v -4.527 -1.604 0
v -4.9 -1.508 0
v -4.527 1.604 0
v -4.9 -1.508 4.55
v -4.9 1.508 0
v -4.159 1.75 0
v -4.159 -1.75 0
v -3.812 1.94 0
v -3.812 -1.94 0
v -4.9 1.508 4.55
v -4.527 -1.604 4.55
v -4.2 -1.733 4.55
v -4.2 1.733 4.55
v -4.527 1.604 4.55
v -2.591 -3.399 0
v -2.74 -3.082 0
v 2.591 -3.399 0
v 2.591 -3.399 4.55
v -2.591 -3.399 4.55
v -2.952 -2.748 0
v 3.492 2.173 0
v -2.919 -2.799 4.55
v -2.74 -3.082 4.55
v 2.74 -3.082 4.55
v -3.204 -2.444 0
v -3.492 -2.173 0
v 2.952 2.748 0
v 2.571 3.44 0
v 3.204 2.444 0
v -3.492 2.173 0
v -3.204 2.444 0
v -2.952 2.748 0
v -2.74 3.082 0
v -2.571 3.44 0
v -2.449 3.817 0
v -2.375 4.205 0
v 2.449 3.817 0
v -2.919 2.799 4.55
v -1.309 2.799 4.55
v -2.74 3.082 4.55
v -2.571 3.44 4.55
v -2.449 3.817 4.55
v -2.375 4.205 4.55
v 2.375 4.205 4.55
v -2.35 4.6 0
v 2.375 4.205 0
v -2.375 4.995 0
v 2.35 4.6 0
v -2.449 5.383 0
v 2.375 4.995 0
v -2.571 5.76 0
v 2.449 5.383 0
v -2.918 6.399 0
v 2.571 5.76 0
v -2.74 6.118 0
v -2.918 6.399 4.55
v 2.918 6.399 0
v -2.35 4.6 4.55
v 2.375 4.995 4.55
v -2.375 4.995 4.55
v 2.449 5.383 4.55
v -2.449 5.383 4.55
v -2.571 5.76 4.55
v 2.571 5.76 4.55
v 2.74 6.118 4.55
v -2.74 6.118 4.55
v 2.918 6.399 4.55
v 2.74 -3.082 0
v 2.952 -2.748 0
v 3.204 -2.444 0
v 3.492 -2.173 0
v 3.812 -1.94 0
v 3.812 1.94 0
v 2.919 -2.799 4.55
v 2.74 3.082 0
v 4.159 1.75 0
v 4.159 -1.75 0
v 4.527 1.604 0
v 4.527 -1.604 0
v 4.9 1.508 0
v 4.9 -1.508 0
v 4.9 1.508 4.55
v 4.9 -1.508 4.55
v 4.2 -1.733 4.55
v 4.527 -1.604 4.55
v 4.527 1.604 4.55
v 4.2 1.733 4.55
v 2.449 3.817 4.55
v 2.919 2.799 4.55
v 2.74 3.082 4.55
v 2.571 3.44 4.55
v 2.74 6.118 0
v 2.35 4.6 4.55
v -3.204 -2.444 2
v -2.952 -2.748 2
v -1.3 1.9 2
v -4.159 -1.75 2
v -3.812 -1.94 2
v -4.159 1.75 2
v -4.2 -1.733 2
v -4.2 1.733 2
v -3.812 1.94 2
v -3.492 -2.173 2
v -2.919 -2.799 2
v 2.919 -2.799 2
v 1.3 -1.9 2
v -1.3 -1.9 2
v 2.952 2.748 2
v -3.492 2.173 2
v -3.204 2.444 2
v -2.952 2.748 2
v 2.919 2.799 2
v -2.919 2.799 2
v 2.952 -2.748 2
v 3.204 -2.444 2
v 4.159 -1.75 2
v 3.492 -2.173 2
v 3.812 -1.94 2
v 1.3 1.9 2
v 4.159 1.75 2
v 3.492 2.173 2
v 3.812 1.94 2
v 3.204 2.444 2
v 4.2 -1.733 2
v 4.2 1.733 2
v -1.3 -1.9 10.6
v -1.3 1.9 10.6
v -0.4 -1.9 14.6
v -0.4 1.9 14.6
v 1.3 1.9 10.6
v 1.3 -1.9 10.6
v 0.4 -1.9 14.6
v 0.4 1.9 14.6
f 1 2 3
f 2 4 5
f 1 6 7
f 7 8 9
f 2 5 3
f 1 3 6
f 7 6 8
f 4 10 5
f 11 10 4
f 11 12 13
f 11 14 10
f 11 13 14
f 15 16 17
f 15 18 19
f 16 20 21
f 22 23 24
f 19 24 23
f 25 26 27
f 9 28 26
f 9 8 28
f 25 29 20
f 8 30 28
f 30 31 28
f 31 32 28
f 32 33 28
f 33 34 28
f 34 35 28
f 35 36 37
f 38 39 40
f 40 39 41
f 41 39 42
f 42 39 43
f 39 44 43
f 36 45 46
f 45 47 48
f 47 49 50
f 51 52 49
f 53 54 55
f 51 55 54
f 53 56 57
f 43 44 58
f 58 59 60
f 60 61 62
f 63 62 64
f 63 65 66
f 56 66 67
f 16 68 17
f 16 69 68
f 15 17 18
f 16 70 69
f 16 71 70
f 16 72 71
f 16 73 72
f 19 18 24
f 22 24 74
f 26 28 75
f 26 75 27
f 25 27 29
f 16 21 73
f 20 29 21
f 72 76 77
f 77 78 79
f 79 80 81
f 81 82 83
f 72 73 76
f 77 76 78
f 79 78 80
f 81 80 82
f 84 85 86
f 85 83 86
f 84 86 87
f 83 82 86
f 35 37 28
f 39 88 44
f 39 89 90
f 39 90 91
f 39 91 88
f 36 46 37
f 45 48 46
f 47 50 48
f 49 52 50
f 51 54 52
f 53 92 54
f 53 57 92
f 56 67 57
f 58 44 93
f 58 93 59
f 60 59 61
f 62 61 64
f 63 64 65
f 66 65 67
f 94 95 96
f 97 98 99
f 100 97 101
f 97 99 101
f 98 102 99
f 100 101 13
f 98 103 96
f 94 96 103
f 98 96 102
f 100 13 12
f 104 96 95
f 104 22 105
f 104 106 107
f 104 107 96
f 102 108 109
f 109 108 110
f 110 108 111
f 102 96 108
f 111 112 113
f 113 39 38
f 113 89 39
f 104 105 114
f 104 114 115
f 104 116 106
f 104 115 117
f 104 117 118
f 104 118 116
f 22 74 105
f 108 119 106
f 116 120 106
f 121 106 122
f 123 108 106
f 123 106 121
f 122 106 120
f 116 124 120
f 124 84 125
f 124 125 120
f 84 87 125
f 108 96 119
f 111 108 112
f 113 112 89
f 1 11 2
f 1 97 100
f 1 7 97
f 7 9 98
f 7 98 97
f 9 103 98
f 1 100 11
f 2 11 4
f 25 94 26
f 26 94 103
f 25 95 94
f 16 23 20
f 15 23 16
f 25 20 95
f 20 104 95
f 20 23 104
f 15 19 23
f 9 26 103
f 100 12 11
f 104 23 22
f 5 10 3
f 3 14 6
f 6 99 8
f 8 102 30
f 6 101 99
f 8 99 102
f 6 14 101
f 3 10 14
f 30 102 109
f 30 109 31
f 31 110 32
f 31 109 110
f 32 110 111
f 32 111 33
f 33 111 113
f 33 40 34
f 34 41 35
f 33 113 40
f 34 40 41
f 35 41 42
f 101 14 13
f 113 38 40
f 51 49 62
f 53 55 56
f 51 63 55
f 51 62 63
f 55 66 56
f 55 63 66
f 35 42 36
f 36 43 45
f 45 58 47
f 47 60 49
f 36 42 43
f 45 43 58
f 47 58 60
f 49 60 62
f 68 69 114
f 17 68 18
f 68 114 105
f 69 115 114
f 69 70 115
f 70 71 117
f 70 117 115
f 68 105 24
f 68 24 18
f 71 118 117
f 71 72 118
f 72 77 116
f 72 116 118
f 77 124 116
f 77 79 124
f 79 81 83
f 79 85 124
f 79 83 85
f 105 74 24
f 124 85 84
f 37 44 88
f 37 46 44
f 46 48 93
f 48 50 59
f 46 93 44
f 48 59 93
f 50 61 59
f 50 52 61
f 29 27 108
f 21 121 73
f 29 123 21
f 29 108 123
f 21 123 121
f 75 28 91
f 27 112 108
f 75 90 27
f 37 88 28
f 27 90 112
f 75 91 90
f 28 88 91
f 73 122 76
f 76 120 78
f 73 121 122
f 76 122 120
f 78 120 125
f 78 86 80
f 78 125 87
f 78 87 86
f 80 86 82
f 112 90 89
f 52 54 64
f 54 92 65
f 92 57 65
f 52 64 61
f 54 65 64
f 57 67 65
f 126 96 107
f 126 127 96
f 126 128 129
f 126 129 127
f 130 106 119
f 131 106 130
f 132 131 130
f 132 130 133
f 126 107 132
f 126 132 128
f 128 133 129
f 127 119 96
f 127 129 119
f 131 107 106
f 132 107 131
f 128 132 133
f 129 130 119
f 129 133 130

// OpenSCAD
$fn = 50;

difference() {
	union() {
		translate(v = [0, 0, 0]) {
			rotate(a = [0, 0, 0]) {
				difference() {
					union() {
						translate(v = [0, 0, 0]) {
							rotate(a = [0, 0, 0]) {
								difference() {
									union() {
										translate(v = [0, 0, 0]) {
											rotate(a = [0, 0, 0]) {
												difference() {
													union() {
														translate(v = [0, 1.5, 0]) {
															hull() {
																translate(v = [-4.15, 4.15, 0]) {
																	cylinder(h = 4.55, r = 0.75);
																}
																translate(v = [4.15, 4.15, 0]) {
																	cylinder(h = 4.55, r = 0.75);
																}
																translate(v = [-4.15, -4.15, 0]) {
																	cylinder(h = 4.55, r = 0.75);
																}
																translate(v = [4.15, -4.15, 0]) {
																	cylinder(h = 4.55, r = 0.75);
																}
															}
														}
													}
													union() {
														translate(v = [0, 0, 2.0]) {
															hull() {
																translate(v = [-3.9000000000000004, 2.5, 0]) {
																	cylinder(h = 2.65, r = 0.3);
																}
																translate(v = [3.9000000000000004, 2.5, 0]) {
																	cylinder(h = 2.65, r = 0.3);
																}
																translate(v = [-3.9000000000000004, -2.5, 0]) {
																	cylinder(h = 2.65, r = 0.3);
																}
																translate(v = [3.9000000000000004, -2.5, 0]) {
																	cylinder(h = 2.65, r = 0.3);
																}
															}
														}
														translate(v = [-5.5, -4.6, -0.1]) {
															cylinder(h = 4.75, r = 3.15);
														}
														translate(v = [-5.5, 4.6, -0.1]) {
															cylinder(h = 4.75, r = 3.15);
														}
														translate(v = [5.5, -4.6, -0.1]) {
															cylinder(h = 4.75, r = 3.15);
														}
														translate(v = [5.5, 4.6, -0.1]) {
															cylinder(h = 4.75, r = 3.15);
														}
													}
												}
											}
										}
										translate(v = [0, 0, 0]) {
											rotate(a = [0, 0, 0]) {
												difference() {
													union() {
														translate(v = [-1.4000000000000001, -1.9, 1.95]) {
															cube(size = [2.8000000000000003, 3.8, 12.65]);
														}
													}
													union() {
														translate(v = [0, 2.0, 0]) {
															rotate(a = [90, 0, 0]) {
																linear_extrude(height = 4.0) {
																	polygon(points = [[-1.3, 1.85], [-1.3, 10.6], [-0.4, 14.6], [-0.4, 14.799999999999999], [-1.6, 14.799999999999999], [-1.6, 1.85]]);
																}
															}
														}
														translate(v = [0, 2.0, 0]) {
															rotate(a = [90, 0, 0]) {
																linear_extrude(height = 4.0) {
																	polygon(points = [[1.3, 1.85], [1.3, 10.6], [0.4, 14.6], [0.4, 14.799999999999999], [1.6, 14.799999999999999], [1.6, 1.85]]);
																}
															}
														}
													}
												}
											}
										}
									}
									union();
								}
							}
						}
					}
					union();
				}
			}
		}
	}
	union();
}
